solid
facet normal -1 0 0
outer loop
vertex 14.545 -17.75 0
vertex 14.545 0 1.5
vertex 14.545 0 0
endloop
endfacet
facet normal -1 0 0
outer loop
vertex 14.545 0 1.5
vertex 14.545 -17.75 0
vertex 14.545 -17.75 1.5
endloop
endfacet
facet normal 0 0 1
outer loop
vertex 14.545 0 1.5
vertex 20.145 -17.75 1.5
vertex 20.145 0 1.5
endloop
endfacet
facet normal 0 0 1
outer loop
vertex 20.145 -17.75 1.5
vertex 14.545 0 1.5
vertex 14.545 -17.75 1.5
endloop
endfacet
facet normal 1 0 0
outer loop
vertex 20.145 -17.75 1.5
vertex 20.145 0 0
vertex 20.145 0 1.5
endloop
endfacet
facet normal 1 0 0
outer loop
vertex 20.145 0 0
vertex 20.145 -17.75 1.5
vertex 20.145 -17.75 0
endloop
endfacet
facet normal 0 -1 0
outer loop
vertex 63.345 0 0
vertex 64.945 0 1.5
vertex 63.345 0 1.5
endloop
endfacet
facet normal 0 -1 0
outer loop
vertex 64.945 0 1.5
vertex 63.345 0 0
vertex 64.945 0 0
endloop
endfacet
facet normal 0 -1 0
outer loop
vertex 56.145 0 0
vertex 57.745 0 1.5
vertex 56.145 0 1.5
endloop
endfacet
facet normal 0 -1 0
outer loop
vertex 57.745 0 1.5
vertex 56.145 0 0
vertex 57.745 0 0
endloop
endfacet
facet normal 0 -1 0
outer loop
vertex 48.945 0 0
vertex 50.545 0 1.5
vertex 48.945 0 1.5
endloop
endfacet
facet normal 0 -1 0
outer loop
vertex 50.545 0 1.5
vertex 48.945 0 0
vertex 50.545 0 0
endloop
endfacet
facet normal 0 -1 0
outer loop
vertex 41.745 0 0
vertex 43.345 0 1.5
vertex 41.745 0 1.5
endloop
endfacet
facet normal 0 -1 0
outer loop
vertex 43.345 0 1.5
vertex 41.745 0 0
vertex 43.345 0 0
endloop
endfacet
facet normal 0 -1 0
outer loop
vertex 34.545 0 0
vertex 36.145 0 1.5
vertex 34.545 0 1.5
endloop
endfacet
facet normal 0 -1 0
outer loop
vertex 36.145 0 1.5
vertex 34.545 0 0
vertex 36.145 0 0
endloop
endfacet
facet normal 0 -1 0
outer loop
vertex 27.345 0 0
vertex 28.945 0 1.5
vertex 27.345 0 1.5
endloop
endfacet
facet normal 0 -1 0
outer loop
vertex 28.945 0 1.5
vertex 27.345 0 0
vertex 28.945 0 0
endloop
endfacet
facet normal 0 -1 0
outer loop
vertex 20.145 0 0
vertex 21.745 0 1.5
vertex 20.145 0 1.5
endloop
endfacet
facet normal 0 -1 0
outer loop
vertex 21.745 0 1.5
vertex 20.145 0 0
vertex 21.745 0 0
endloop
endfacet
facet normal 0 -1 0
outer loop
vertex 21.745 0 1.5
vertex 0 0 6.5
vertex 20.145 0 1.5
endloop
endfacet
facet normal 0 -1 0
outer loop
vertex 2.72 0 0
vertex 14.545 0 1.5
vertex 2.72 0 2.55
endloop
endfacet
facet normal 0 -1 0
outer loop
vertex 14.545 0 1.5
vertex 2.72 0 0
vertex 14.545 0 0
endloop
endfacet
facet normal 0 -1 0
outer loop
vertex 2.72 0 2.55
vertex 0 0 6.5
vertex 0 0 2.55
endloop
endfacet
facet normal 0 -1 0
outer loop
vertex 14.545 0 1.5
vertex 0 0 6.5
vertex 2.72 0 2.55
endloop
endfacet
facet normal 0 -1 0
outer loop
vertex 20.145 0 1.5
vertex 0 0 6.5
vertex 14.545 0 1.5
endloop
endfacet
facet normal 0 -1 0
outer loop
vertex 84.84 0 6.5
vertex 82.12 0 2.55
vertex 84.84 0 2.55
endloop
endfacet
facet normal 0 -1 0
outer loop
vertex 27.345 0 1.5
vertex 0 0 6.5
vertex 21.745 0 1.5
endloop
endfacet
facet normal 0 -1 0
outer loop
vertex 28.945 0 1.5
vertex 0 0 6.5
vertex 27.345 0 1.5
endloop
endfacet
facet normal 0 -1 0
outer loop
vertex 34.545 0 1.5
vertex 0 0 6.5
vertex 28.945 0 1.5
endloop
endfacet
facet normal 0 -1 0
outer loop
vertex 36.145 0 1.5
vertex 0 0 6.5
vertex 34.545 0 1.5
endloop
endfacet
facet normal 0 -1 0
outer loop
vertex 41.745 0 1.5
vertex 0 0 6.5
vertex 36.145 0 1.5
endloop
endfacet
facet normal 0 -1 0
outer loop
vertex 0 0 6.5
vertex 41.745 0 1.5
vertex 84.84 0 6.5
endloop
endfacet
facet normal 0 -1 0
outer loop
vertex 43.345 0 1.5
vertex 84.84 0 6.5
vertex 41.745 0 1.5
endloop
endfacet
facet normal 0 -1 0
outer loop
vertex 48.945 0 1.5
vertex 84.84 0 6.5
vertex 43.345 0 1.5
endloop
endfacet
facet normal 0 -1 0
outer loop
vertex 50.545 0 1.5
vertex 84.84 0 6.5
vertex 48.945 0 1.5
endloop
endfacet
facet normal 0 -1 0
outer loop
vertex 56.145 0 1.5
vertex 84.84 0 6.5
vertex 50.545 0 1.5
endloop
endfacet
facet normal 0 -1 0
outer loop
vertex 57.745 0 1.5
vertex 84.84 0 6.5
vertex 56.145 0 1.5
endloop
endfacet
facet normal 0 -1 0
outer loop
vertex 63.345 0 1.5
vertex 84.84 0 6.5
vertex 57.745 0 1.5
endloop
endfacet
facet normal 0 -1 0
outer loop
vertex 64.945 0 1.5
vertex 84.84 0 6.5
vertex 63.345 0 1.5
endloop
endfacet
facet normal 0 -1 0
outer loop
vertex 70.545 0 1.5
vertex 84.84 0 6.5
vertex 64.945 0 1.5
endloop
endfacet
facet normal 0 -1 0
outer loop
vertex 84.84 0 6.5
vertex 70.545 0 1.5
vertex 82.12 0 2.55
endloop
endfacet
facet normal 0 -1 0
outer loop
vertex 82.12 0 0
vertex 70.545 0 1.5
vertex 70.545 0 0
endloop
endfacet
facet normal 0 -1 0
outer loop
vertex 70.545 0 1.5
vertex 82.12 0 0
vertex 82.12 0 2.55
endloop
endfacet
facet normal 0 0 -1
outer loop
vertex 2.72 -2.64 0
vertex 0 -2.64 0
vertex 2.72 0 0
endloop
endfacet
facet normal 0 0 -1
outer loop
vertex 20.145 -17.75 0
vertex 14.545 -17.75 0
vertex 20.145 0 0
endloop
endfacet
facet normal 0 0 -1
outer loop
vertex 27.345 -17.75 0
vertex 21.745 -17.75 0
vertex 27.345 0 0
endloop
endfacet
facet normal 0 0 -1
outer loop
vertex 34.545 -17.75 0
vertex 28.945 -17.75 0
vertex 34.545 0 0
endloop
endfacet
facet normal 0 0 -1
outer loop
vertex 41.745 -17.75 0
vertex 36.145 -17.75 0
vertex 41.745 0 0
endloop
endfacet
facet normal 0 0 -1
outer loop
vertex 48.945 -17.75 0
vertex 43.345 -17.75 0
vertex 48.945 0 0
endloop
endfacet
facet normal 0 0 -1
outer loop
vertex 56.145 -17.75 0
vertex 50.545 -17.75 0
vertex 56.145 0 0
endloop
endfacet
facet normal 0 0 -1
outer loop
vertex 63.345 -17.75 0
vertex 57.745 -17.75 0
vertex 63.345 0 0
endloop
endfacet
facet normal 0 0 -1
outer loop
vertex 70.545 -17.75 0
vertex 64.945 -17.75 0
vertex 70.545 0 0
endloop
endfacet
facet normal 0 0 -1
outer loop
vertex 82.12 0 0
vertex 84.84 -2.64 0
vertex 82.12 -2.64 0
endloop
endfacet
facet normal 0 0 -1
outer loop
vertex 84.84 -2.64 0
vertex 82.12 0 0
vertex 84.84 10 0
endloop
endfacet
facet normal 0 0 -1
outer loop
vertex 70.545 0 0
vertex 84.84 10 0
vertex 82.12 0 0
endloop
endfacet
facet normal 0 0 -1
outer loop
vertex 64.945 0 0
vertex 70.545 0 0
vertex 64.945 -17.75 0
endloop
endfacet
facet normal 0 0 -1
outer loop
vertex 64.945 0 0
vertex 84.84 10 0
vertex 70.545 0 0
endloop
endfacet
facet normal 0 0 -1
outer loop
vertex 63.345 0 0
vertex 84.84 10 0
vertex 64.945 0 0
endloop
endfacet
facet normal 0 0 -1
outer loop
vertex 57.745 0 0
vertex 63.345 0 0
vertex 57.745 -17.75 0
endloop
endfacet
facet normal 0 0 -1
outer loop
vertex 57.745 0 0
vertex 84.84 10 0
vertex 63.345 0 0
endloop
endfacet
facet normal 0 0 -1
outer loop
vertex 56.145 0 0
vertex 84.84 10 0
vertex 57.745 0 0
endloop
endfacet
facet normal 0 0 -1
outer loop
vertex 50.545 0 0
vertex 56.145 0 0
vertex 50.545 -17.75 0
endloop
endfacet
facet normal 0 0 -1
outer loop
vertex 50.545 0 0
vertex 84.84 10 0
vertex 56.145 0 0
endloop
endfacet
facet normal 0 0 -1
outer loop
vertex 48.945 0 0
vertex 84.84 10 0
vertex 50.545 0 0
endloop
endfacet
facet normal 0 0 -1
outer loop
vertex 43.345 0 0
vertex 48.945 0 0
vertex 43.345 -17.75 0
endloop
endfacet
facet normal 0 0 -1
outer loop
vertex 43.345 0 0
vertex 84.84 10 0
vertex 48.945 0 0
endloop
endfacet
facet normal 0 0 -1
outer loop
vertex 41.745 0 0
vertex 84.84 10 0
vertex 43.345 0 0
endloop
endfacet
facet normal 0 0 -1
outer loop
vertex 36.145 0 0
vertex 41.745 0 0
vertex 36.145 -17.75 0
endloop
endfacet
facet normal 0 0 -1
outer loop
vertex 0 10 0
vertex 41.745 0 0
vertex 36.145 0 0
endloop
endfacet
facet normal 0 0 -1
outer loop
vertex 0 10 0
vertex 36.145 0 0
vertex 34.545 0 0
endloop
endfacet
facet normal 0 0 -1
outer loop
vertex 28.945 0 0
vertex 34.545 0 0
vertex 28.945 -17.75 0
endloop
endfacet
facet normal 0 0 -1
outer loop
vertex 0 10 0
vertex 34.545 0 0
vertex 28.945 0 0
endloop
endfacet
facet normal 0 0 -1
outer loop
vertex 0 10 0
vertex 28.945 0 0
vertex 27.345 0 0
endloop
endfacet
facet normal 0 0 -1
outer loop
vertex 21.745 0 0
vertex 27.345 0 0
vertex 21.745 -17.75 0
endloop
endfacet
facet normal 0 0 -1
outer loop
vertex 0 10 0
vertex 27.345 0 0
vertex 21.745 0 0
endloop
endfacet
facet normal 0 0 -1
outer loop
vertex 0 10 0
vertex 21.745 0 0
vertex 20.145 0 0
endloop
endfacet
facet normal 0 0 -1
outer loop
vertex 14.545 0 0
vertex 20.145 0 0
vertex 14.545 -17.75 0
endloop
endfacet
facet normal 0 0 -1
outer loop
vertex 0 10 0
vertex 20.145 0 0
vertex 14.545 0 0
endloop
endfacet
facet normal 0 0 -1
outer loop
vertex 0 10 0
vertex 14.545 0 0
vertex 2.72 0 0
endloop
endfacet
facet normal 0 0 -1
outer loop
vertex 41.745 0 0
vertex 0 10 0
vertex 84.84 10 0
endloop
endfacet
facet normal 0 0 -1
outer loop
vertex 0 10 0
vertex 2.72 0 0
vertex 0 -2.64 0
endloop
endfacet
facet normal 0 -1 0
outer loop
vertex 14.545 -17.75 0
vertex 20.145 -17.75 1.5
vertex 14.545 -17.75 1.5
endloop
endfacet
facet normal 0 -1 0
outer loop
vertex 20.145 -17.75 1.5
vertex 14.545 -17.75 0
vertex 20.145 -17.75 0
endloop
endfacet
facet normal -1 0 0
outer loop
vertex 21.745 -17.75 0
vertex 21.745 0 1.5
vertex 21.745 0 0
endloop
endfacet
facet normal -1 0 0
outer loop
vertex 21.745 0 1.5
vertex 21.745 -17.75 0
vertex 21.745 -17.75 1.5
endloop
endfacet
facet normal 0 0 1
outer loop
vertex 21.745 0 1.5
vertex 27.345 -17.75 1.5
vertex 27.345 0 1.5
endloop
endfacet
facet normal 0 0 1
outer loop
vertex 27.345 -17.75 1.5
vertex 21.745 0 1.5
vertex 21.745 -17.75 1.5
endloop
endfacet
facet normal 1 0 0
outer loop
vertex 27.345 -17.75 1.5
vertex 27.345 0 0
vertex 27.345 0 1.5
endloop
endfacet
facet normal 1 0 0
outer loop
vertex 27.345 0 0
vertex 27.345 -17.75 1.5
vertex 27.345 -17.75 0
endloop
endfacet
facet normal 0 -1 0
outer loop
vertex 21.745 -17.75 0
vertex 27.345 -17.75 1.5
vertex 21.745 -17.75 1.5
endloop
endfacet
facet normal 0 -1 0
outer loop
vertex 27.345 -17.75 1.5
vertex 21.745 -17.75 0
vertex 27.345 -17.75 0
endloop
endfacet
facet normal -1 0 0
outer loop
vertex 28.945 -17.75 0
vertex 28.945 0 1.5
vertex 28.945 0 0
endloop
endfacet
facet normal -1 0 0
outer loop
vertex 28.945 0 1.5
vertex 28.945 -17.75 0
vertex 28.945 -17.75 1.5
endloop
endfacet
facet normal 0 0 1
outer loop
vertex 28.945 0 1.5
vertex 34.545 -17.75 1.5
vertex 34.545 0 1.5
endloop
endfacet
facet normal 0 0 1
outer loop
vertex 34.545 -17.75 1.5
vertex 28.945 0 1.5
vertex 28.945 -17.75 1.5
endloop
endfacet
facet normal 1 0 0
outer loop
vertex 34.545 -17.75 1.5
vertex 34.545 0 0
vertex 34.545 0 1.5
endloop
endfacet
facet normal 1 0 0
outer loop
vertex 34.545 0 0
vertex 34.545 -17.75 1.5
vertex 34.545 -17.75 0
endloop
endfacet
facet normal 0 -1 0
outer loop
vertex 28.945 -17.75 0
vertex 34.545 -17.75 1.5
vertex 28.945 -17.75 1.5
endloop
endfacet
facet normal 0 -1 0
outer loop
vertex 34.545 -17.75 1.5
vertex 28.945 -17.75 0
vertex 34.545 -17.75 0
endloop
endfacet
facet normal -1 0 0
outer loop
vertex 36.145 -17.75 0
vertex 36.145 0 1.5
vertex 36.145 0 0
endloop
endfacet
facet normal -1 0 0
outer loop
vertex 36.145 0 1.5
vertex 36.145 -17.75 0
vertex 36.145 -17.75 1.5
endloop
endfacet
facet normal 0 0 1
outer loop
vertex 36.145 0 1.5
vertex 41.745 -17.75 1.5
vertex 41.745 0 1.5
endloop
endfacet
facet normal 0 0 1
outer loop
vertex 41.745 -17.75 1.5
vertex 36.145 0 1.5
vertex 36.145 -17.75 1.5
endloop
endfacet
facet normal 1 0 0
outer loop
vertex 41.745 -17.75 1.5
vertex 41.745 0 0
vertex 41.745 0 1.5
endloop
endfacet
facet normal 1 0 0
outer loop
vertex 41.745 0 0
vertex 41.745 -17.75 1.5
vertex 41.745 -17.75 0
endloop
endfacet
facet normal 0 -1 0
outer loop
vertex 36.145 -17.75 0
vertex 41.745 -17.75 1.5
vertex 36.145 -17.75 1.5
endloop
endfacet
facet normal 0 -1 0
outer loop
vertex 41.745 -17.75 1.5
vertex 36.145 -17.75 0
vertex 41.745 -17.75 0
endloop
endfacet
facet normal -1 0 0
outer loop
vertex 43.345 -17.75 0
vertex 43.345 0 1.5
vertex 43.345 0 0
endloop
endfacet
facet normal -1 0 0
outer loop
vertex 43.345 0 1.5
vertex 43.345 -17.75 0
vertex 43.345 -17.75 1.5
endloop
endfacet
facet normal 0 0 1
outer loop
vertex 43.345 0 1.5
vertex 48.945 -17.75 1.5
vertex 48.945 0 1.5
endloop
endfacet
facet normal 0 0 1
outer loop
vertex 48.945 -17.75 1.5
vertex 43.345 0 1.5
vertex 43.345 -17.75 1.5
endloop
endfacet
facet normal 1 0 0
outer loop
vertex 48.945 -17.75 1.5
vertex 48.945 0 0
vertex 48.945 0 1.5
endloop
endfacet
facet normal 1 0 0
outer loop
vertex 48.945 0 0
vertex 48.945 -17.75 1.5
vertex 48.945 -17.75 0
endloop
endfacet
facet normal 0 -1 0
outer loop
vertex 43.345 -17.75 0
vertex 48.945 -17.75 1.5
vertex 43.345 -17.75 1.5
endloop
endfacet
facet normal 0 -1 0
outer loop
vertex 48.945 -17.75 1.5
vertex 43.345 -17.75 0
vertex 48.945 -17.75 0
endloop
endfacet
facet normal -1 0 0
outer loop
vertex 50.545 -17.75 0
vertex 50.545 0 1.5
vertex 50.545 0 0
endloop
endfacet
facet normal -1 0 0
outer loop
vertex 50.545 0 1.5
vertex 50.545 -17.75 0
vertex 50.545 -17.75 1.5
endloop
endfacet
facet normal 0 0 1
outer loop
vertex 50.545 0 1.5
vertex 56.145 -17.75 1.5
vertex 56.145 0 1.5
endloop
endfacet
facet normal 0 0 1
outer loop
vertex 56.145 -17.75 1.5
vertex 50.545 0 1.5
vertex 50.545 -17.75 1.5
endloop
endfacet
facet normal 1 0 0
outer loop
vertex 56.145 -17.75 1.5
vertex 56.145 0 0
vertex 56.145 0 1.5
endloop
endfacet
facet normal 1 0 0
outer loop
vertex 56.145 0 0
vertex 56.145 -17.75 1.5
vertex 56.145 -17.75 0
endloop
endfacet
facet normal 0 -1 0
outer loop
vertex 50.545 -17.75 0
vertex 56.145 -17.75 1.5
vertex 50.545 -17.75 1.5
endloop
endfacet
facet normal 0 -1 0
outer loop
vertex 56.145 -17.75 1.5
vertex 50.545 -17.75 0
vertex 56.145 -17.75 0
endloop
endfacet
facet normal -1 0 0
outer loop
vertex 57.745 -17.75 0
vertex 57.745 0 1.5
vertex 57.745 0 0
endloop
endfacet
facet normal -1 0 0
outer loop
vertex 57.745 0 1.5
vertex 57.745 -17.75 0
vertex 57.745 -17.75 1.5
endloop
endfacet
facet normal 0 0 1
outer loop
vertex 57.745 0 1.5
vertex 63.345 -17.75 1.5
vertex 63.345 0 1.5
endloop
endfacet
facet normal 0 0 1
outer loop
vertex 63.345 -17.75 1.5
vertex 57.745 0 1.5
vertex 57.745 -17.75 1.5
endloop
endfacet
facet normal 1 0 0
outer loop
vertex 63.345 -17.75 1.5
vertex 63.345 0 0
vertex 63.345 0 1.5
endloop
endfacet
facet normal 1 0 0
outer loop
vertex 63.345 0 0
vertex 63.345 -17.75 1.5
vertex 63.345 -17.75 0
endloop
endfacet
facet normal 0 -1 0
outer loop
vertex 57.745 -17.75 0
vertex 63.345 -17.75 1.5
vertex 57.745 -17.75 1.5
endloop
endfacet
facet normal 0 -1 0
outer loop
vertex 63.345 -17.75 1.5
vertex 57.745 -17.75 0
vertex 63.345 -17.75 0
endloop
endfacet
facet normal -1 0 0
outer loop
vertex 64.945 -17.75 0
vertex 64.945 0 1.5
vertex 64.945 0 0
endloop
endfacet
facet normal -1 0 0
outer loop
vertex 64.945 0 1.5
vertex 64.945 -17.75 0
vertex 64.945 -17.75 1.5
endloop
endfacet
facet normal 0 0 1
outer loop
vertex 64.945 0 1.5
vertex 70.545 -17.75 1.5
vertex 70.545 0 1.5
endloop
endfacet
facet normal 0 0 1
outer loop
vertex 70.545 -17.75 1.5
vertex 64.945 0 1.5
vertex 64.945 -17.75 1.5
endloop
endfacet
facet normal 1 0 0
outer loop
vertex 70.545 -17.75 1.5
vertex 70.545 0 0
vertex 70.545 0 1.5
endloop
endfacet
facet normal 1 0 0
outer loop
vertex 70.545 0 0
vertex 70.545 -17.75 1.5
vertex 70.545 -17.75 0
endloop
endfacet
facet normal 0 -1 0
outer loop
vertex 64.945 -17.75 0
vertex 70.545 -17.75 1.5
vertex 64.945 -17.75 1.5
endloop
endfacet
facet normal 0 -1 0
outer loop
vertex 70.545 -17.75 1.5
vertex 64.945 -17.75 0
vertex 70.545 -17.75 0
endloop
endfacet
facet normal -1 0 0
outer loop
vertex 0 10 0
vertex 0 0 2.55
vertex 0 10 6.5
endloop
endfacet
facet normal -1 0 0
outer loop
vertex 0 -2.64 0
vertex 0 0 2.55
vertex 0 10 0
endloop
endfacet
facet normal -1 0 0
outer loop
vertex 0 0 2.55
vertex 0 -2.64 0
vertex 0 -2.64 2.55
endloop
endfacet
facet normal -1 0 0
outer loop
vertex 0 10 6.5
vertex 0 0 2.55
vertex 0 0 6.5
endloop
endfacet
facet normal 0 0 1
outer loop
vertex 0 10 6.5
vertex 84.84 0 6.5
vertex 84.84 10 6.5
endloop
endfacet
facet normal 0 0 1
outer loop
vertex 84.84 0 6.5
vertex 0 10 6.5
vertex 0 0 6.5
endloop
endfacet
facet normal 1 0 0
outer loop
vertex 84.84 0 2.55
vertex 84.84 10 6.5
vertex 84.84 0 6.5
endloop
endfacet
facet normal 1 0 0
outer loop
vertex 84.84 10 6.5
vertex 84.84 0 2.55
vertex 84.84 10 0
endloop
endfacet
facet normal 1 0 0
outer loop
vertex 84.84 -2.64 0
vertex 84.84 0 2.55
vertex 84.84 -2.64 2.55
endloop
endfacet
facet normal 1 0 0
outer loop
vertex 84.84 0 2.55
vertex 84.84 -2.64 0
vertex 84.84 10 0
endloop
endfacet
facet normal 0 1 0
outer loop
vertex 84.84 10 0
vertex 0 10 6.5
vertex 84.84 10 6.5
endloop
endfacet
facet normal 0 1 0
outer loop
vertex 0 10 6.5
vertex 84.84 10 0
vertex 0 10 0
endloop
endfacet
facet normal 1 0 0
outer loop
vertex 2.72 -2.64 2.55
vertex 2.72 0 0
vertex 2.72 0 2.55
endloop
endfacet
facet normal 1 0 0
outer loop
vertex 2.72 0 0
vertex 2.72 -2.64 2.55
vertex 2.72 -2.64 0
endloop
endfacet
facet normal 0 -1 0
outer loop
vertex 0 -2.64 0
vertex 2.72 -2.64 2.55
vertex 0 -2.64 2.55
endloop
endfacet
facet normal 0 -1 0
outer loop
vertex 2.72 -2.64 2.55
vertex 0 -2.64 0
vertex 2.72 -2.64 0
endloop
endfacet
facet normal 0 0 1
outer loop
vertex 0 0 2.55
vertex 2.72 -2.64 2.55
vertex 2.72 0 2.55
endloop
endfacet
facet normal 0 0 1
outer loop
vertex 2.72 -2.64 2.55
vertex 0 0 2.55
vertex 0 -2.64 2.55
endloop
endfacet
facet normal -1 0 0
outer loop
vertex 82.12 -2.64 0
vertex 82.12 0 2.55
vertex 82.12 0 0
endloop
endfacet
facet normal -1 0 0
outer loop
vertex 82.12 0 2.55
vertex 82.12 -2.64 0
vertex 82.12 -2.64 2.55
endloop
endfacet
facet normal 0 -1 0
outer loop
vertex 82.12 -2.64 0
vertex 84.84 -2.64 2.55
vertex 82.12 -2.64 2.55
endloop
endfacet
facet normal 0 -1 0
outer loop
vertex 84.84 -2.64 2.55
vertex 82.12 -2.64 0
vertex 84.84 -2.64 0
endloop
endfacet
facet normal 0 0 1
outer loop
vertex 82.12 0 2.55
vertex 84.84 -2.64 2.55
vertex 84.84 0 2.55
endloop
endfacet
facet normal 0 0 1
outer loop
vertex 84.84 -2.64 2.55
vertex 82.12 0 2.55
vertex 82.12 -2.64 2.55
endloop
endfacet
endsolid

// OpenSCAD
echo(version=version());

// Number of teeth. Tooth width is calculated from tooth count, gap, and available space.
// Taking references from http://gelcombs.com/products/single-gel-combs.php
tooth_count = 8; // Number of wells
tooth_width = 5.6; // Width of each tooth
tooth_thickness = 0; // Thickness of each tooth
tooth_gap = 1.6; // Spacing between teeth.

tooth_length = 17.75;  // Length of teeth (measured perpendicular from comb)
tooth_margin = 14.545; // Width reserved on either end of comb to be free of teeth.

front_tooth_height = 1.5;
rear_tooth_height = 0;

// Upper Body
cube([84.84, 10, 6.5], center = false);

// Support block
    //color("red")
    translate([0, -2.64, 0])
    linear_extrude(height = 2.55)
    square([2.72, 2.64], center = false);
// Support block
    //color("red")
    translate([82.12, -2.64, 0])
    linear_extrude(height = 2.55)
    square([2.72, 2.64], center = false);

echo(tooth_width);

union() {
	Core();
	Teeth(rear_tooth_height);
	rotate([0, 0, 0]) Teeth(front_tooth_height);
}

module Core() {
	union() {
		//translate([0, 0, comb_z/2]) cube([comb_x, comb_y, comb_z], center=false);
		//translate([0, 0, raised_z/2]) cube([raised_x, raised_y, raised_z], center=false);
	}
}

module Teeth(height) {
	translate([0, 0, 0]) union() {
		for(i = [0:tooth_count-1]) {
			translate([i * (tooth_width + tooth_gap), 0, 0]) Tooth(tooth_width, tooth_length, height);
		}
	}
}

module Tooth(width, length, height) {
	translate([tooth_margin, -length, 0]) 
    cube([width, length, height], center=false);
}
